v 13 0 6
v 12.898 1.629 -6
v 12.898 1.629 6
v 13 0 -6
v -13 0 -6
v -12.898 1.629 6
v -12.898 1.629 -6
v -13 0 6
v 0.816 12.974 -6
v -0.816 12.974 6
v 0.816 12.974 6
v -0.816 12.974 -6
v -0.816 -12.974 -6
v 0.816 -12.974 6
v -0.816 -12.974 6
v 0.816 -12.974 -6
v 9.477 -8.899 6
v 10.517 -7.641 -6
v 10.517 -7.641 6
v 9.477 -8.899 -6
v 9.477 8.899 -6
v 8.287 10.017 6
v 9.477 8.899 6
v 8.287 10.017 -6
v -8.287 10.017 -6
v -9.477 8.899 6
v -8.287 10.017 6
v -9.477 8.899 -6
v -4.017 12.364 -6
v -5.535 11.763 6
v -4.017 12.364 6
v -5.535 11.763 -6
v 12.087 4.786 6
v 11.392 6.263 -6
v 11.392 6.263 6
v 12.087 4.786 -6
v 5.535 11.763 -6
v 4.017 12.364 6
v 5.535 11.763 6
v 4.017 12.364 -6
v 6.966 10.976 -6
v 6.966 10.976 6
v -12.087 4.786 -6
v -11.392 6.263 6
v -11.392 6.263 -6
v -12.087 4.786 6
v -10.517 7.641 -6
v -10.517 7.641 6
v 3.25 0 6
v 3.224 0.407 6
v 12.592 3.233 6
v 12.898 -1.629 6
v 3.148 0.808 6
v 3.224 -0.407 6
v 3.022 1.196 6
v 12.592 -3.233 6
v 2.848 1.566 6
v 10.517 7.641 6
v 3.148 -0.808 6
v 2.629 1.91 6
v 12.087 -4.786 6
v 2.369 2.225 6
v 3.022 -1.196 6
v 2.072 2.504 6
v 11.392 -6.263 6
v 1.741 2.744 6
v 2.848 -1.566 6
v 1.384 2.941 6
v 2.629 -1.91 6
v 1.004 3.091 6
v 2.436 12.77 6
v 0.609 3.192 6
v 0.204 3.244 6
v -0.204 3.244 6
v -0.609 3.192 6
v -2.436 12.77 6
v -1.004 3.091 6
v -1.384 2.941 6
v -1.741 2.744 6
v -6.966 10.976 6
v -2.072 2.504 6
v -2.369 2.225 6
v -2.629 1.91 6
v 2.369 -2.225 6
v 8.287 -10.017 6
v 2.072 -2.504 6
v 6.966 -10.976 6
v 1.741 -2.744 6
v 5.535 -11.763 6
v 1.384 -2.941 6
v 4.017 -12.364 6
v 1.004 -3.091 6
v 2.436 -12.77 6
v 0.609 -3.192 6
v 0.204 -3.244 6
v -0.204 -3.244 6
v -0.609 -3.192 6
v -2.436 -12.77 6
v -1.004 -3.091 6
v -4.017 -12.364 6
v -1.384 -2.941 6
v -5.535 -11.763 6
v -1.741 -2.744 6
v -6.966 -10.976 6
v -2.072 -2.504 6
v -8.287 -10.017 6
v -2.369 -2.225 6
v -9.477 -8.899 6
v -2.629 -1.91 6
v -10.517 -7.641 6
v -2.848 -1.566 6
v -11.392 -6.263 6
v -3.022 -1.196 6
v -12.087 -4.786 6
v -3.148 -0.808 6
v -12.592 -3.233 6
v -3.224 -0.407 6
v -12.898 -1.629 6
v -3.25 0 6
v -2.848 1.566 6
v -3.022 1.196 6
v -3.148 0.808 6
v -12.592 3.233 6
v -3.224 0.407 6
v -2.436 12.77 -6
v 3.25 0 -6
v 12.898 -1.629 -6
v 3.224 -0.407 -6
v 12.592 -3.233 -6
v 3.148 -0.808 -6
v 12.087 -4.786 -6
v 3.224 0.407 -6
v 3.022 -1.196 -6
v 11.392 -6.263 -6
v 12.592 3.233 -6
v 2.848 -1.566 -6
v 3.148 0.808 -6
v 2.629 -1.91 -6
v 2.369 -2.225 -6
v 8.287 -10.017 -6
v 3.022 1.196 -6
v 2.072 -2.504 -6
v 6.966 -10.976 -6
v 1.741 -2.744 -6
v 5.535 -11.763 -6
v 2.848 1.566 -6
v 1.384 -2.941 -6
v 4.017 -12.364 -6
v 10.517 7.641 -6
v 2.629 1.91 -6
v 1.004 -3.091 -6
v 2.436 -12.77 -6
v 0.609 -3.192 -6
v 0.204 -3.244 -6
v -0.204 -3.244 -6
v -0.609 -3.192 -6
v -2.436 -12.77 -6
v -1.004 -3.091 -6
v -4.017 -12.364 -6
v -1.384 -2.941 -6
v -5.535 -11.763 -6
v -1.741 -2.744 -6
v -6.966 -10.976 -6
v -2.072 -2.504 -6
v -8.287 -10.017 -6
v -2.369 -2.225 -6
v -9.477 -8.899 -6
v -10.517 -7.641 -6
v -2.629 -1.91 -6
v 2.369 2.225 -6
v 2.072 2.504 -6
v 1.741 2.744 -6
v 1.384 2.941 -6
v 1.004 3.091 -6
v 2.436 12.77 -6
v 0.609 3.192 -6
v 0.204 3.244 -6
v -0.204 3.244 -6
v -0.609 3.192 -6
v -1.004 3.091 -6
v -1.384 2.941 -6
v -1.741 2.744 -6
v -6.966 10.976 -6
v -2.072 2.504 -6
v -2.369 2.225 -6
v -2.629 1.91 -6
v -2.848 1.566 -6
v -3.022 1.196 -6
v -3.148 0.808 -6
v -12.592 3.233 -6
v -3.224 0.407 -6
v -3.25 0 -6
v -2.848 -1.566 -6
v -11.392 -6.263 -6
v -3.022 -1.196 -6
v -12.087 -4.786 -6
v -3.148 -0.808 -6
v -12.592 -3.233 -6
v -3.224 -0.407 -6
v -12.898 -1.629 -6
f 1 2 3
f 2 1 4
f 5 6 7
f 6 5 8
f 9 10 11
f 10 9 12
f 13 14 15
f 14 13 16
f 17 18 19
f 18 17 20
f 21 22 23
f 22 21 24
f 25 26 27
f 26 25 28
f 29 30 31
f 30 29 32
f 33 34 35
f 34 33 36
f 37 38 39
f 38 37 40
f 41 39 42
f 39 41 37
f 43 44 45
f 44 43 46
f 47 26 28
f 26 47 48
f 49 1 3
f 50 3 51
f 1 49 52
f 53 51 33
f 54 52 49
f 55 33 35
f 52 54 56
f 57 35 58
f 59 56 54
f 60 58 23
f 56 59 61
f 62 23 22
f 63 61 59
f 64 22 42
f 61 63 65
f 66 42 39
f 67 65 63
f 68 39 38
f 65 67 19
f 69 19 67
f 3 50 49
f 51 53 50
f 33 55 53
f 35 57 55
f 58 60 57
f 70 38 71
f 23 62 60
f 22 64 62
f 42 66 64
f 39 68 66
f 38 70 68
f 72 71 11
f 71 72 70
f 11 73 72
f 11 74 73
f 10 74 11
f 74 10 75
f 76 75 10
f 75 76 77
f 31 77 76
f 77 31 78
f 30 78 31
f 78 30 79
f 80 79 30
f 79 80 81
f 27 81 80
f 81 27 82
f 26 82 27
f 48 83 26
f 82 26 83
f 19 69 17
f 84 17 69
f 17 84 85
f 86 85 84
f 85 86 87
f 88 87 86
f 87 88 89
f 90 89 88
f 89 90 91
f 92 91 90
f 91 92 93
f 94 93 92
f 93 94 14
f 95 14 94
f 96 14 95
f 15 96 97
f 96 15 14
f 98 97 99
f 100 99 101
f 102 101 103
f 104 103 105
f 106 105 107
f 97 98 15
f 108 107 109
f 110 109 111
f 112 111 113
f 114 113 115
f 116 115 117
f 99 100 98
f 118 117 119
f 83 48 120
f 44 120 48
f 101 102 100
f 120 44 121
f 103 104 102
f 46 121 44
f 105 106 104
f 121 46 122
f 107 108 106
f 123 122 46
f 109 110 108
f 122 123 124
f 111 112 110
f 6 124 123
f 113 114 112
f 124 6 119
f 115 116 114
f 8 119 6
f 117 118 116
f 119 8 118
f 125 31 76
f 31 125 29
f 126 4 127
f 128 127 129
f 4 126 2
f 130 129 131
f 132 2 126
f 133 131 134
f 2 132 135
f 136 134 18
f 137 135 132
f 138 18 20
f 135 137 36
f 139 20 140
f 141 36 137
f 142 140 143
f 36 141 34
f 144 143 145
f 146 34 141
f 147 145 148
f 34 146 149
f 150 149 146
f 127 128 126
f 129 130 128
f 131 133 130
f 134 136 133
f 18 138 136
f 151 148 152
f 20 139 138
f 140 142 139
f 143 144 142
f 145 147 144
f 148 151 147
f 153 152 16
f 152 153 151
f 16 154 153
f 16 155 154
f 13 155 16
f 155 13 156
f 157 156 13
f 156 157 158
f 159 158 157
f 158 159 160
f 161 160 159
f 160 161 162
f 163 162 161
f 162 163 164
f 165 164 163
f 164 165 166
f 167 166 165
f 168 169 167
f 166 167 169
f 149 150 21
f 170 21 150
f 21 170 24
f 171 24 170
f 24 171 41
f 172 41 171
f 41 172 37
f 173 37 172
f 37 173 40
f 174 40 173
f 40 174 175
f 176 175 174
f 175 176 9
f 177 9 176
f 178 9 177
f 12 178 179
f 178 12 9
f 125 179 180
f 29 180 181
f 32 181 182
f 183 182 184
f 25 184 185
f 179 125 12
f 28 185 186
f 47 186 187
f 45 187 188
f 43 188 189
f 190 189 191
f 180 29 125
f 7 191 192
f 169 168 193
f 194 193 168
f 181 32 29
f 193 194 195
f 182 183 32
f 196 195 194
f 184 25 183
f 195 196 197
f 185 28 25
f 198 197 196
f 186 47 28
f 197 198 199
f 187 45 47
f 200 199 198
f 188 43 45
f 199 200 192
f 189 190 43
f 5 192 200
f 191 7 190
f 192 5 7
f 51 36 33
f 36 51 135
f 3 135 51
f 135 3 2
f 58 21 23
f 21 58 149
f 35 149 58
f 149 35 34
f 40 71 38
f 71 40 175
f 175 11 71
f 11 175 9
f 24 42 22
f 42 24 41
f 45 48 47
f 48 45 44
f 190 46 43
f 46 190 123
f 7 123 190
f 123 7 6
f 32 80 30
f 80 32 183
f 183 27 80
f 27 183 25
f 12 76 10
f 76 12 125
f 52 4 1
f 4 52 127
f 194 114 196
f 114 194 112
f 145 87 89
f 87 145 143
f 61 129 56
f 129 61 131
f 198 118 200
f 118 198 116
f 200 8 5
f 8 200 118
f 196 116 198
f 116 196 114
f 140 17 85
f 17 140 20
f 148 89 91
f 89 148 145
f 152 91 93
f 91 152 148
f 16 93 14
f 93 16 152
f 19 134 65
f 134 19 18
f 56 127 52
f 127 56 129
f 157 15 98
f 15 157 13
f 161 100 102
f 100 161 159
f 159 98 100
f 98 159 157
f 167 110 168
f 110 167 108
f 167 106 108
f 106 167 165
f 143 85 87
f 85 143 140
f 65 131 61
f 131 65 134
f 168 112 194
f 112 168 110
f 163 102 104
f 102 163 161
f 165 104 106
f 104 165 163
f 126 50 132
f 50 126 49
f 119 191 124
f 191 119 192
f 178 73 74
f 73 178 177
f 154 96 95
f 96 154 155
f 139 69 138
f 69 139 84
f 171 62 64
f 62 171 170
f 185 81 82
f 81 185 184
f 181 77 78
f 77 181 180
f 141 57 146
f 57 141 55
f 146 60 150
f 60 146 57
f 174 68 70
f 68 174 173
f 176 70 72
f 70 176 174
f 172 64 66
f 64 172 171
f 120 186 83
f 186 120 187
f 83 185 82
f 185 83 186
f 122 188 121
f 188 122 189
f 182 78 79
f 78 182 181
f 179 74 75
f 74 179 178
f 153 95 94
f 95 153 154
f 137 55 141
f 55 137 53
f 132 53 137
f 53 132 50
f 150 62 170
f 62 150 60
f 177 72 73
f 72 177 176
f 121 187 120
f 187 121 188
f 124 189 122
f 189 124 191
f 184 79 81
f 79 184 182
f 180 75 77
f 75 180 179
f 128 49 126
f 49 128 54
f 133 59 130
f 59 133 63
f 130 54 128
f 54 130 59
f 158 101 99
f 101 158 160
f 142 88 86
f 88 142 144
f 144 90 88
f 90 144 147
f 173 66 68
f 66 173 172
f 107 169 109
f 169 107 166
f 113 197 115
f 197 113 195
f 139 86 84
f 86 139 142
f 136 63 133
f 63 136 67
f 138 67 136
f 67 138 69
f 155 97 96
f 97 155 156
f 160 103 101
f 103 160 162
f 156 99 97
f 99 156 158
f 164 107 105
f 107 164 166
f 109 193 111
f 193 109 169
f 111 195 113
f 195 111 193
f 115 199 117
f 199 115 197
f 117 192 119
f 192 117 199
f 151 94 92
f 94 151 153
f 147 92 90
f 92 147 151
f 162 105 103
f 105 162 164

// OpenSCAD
$fn = 50;


difference() {
	union() {
		translate(v = [0, 0, -6.0000000000]) {
			cylinder(h = 12, r = 13.0000000000);
		}
	}
	union() {
		translate(v = [0, 0, -100.0000000000]) {
			cylinder(h = 200, r = 3.2500000000);
		}
	}
}
